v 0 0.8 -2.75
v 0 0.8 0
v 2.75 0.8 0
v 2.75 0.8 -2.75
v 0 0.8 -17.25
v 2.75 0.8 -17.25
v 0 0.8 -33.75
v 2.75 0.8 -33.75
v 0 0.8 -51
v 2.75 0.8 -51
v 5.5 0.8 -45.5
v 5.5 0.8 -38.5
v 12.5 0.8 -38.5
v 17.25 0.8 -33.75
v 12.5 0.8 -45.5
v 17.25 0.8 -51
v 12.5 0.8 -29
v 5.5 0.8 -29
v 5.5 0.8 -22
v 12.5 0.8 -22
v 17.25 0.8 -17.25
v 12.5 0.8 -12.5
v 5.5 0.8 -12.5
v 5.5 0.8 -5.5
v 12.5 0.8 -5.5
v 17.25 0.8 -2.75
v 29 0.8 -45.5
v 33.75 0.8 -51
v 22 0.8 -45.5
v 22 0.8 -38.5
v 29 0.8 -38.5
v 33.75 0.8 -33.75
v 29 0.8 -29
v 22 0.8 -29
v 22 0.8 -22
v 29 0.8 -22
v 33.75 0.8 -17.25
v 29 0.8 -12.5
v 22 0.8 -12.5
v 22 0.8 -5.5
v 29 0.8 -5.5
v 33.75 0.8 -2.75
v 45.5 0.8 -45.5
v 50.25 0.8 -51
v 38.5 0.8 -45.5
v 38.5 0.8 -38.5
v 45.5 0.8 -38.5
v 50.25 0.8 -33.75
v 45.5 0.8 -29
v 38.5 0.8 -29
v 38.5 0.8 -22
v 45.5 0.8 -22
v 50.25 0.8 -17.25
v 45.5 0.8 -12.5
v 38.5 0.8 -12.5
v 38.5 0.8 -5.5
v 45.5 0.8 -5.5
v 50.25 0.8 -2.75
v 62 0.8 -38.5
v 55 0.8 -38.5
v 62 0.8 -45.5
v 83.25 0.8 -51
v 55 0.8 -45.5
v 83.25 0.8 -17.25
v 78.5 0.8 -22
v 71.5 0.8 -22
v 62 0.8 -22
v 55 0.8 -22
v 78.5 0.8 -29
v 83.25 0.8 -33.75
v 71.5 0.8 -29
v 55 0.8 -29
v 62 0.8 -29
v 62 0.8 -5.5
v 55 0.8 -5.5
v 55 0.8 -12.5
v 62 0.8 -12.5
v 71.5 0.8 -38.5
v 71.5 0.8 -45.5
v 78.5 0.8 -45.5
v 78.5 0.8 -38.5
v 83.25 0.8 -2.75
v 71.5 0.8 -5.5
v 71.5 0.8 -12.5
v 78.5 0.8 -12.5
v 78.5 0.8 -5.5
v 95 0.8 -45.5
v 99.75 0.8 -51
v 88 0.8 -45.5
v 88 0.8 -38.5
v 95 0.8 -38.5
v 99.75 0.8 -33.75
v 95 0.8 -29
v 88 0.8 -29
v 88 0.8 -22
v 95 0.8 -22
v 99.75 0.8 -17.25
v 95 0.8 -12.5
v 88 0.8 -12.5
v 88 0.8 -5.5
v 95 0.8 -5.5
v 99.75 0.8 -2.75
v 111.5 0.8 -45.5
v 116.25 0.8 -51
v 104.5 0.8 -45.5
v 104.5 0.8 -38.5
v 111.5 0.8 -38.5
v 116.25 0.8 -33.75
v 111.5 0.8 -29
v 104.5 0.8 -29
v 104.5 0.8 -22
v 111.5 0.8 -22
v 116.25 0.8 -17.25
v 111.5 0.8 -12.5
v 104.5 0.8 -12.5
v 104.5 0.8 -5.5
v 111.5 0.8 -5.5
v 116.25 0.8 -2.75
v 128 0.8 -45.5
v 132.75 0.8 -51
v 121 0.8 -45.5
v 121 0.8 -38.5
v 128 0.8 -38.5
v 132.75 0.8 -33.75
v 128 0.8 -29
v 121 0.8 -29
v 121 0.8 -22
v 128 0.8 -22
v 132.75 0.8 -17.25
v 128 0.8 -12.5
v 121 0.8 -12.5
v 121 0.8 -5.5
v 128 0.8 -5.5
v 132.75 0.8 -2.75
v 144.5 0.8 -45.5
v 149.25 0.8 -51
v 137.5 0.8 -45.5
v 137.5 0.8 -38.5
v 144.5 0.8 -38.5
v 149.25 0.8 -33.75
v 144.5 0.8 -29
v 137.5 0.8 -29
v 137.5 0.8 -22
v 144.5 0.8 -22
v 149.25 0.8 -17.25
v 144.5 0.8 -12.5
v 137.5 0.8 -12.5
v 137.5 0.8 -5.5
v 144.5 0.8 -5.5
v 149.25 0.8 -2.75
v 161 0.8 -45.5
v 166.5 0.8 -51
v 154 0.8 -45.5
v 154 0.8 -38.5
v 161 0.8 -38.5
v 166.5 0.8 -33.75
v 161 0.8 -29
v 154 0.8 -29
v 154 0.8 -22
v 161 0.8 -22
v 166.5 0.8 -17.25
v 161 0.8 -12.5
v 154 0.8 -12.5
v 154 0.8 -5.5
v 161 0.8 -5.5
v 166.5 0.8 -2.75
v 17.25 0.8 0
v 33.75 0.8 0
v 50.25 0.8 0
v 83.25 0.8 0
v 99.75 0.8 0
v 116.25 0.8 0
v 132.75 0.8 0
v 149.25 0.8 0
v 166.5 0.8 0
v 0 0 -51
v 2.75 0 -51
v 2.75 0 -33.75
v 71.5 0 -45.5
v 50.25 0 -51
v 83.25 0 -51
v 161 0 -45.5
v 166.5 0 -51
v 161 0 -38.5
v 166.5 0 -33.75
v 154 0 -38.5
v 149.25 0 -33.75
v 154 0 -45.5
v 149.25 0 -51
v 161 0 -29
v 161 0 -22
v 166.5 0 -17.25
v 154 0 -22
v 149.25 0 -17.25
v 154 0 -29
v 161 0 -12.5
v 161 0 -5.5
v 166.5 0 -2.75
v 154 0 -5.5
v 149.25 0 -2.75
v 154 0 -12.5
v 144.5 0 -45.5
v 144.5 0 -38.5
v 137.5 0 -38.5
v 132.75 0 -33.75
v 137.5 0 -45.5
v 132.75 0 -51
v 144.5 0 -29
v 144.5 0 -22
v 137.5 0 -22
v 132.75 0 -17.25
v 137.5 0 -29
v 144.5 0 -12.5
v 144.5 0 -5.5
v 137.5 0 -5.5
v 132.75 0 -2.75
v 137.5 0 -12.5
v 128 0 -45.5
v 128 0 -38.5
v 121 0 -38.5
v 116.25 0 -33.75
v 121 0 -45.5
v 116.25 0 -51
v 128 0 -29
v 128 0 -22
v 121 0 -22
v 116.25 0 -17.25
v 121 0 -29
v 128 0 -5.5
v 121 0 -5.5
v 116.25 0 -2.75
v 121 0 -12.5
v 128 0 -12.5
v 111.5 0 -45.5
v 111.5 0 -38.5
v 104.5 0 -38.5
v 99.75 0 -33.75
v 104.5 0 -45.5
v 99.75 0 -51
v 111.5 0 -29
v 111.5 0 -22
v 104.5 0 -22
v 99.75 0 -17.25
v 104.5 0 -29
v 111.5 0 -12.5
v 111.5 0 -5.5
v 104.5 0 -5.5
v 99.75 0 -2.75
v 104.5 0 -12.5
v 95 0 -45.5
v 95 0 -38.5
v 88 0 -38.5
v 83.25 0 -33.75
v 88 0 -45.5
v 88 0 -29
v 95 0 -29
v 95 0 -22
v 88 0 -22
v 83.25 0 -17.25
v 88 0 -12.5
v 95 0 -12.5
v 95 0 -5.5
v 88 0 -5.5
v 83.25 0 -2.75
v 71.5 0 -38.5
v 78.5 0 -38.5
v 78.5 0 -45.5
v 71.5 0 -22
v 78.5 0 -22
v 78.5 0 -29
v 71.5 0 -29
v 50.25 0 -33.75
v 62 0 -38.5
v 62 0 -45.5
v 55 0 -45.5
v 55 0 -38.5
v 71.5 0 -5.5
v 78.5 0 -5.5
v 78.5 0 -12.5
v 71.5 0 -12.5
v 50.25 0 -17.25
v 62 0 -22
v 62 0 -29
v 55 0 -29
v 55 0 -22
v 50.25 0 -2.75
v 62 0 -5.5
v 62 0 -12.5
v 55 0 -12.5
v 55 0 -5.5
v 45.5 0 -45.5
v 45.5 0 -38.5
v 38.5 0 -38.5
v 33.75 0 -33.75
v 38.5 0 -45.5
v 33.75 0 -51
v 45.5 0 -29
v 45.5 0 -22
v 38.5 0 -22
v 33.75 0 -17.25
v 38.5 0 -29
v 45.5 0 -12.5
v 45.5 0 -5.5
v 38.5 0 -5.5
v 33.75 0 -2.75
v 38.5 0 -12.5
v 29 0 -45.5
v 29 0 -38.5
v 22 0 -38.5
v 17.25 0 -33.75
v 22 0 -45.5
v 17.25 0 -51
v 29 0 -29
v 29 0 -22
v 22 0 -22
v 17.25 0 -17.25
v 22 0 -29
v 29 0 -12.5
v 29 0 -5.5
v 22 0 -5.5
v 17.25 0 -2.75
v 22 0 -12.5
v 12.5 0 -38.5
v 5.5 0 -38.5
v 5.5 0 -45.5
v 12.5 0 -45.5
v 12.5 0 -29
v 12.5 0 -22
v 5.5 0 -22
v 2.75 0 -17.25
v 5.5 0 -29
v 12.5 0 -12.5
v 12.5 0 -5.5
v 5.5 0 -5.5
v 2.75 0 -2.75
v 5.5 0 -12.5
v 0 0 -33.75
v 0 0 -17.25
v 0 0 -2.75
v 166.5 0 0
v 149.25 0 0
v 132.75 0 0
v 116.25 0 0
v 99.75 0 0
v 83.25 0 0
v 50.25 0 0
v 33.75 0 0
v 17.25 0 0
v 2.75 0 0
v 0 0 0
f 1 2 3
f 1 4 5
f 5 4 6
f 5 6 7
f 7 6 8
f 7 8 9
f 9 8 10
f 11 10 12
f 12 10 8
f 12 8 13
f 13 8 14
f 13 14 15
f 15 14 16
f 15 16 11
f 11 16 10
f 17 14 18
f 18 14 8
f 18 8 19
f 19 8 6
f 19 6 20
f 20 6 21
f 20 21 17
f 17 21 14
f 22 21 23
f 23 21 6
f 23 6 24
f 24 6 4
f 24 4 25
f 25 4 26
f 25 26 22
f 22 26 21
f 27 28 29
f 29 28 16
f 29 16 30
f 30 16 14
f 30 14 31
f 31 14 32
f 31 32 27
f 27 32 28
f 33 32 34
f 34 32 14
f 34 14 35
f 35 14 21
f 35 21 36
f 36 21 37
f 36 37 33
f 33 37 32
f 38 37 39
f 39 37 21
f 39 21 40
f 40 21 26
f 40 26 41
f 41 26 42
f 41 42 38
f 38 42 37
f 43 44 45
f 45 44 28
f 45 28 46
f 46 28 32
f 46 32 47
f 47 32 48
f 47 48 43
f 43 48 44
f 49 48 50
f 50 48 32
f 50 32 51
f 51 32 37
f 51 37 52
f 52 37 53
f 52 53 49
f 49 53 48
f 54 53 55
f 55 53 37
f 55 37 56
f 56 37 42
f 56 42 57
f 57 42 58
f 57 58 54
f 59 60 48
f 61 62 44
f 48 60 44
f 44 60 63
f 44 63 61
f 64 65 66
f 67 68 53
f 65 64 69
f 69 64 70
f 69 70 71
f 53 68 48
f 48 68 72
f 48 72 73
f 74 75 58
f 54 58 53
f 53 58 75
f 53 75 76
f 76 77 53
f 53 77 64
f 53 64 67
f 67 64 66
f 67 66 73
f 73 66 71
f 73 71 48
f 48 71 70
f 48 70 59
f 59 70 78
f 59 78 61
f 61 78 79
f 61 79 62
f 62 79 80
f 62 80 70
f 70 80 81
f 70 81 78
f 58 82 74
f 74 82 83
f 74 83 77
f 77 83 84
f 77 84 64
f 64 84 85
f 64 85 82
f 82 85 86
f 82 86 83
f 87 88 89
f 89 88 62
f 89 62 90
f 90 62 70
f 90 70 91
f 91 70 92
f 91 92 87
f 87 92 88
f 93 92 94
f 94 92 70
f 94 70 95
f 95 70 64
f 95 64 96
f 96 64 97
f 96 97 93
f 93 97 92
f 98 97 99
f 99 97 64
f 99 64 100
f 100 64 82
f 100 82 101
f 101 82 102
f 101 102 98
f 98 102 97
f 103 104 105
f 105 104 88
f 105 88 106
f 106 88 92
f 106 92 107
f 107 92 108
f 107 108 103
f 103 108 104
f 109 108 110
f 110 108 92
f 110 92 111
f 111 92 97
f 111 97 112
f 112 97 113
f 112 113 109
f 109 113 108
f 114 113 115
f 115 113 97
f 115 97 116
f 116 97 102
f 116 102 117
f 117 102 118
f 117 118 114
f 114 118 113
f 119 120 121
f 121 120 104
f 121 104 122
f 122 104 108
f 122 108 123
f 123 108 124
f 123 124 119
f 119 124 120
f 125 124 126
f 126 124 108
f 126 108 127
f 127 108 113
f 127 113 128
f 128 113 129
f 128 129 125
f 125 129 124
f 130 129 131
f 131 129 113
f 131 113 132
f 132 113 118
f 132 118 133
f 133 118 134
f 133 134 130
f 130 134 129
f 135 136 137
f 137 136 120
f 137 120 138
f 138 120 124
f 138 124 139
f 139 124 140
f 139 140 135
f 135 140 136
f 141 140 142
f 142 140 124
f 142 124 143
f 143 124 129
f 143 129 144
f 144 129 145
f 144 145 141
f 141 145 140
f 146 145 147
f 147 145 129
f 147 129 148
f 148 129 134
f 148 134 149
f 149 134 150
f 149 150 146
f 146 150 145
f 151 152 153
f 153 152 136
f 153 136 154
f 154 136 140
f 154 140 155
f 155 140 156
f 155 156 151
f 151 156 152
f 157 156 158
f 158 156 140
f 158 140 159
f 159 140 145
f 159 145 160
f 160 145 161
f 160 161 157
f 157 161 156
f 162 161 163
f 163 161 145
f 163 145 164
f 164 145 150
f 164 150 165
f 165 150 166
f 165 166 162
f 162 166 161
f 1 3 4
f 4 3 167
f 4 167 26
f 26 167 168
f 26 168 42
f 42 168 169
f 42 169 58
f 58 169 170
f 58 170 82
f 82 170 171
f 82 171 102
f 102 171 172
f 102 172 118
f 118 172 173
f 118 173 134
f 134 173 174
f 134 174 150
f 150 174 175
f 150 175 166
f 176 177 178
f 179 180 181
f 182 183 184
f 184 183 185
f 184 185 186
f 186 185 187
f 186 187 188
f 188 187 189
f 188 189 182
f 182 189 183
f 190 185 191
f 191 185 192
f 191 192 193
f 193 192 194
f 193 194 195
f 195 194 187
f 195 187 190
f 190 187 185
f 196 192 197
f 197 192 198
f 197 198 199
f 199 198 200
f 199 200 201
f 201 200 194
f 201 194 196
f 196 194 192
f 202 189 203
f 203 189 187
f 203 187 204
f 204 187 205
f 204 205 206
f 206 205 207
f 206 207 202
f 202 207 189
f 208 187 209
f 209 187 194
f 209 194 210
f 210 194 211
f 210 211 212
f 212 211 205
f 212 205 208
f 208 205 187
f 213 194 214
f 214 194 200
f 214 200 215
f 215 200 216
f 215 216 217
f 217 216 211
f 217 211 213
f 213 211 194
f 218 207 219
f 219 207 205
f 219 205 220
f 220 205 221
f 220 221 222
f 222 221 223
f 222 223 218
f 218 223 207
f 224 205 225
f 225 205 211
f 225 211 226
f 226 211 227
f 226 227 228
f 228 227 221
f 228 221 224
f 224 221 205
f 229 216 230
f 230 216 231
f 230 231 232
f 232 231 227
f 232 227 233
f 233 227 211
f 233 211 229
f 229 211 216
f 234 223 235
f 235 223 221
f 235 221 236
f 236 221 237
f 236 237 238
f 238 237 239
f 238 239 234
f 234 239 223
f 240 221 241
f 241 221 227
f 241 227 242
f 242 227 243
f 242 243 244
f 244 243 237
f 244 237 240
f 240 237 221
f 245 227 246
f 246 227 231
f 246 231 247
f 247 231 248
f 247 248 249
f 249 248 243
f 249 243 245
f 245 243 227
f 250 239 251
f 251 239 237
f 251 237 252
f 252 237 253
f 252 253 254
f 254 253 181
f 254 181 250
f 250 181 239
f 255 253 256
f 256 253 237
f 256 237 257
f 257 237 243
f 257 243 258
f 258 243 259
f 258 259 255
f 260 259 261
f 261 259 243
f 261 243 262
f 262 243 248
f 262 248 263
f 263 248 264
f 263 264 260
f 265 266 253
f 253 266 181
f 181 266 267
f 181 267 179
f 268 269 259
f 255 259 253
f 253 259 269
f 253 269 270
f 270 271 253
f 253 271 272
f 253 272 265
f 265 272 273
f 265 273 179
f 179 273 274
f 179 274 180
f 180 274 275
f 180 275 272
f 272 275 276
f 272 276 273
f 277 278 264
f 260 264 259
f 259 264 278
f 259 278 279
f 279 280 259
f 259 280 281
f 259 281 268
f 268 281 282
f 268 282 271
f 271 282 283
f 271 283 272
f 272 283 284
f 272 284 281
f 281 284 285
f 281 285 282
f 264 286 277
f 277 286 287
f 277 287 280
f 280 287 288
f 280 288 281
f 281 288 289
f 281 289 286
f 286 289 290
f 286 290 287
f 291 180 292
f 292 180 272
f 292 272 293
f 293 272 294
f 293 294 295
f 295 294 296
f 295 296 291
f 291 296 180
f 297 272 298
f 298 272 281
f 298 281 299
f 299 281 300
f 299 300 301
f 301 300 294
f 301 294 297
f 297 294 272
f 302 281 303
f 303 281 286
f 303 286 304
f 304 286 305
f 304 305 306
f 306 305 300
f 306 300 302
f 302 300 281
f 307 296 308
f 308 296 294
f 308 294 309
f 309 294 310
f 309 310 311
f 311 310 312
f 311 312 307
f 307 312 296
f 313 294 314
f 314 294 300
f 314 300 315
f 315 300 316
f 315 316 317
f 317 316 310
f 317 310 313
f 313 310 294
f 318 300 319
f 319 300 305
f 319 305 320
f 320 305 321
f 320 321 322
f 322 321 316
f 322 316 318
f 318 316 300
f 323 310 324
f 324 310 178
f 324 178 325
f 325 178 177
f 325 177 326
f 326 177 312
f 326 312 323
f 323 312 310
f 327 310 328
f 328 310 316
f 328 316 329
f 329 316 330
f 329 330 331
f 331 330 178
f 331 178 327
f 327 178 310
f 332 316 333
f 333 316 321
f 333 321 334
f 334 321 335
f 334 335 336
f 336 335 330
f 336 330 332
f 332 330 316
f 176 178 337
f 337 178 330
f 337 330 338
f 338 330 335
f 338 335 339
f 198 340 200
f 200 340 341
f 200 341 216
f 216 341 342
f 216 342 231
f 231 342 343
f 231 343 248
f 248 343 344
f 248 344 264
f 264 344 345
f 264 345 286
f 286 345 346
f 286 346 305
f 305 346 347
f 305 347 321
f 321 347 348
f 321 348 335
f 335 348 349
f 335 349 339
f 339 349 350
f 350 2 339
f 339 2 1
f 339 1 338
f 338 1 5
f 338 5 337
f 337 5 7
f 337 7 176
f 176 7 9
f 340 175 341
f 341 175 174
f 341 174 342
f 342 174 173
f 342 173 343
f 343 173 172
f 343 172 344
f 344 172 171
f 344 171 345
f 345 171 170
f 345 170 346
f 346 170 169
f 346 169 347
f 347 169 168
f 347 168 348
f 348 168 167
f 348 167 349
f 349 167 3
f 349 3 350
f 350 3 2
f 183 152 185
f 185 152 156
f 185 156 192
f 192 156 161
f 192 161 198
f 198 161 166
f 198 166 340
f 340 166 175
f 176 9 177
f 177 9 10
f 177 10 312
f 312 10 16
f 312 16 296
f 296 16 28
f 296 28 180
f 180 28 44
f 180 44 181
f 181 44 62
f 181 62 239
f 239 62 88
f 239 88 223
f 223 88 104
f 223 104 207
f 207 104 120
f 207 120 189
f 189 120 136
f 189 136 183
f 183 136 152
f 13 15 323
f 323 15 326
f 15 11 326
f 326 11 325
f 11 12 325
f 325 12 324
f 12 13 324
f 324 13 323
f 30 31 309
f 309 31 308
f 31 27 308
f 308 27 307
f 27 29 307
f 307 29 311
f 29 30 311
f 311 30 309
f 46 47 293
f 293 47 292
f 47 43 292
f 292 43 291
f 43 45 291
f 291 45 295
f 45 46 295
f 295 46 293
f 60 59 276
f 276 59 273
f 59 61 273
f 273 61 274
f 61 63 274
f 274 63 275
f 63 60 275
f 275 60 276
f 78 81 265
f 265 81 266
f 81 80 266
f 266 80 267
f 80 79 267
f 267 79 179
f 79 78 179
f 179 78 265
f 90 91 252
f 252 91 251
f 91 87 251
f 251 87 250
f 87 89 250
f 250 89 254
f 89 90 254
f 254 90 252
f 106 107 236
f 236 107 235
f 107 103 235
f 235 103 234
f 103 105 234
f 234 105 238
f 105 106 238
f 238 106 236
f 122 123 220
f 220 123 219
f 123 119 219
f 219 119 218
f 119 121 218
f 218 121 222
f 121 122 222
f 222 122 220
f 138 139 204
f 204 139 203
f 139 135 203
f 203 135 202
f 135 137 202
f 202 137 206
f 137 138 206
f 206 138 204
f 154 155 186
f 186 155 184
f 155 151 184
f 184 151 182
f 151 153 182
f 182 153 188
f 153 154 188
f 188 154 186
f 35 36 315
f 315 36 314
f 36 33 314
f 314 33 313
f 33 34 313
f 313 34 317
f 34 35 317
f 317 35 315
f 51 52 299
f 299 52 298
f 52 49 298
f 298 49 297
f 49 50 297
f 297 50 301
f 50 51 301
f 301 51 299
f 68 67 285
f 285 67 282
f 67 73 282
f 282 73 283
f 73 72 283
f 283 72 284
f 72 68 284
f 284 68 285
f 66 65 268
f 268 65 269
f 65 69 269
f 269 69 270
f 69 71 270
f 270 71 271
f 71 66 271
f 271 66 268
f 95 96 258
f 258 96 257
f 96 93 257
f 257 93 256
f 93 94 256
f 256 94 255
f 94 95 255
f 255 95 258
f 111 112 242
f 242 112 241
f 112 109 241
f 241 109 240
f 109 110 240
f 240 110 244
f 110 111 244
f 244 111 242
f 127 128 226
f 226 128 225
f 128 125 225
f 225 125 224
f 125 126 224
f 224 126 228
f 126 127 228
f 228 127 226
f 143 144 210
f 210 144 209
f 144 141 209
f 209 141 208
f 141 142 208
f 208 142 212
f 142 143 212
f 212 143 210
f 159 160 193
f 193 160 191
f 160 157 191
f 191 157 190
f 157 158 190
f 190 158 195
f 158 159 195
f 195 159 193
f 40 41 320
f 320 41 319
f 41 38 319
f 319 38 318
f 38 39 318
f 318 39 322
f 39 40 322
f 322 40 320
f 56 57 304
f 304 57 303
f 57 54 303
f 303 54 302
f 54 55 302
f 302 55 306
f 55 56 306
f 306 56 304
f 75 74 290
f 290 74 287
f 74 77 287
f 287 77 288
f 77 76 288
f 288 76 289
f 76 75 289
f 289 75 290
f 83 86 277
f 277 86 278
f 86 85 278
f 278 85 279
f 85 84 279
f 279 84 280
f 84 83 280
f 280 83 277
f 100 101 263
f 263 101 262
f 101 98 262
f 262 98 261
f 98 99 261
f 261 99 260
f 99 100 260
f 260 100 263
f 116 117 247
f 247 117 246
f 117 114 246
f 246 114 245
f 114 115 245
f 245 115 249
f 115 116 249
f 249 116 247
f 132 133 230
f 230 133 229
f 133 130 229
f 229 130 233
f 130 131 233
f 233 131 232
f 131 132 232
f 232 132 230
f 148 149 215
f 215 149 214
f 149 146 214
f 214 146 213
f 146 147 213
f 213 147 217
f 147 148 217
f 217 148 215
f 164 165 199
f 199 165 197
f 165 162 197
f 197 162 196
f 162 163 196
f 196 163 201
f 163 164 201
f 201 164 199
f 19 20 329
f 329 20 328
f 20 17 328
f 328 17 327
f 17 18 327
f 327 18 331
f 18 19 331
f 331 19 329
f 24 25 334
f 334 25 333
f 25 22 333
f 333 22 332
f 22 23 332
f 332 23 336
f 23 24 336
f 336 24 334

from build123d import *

# Parameters (mm, degrees)
IZIM1_W                     = 166.5
IZIM1_H                     = 51
IZIM1_W_2                   = 7
IZIM1_H_2                   = 7
Y_KSEKLIK_EKSTR_ZYON1_DEPTH = 0.8


with BuildPart() as part:
    # Çizim1 → Yükseklik-Ekstrüzyon1 (new body)
    with BuildSketch(Plane(origin=(0, 0, 0), x_dir=(1, 0, 0), z_dir=(0, 1, 0))):
        with Locations((83.25, 25.5)):
            Rectangle(IZIM1_W, IZIM1_H)
        with Locations((25.5, 42)):
            Rectangle(IZIM1_W_2, IZIM1_H_2, mode=Mode.SUBTRACT)
        with Locations((9, 42)):
            Rectangle(IZIM1_W_2, IZIM1_H_2, mode=Mode.SUBTRACT)
        with Locations((42, 42)):
            Rectangle(IZIM1_W_2, IZIM1_H_2, mode=Mode.SUBTRACT)
        with Locations((58.5, 42)):
            Rectangle(IZIM1_W_2, IZIM1_H_2, mode=Mode.SUBTRACT)
        with Locations((75, 42)):
            Rectangle(IZIM1_W_2, IZIM1_H_2, mode=Mode.SUBTRACT)
        with Locations((91.5, 42)):
            Rectangle(IZIM1_W_2, IZIM1_H_2, mode=Mode.SUBTRACT)
        with Locations((108, 42)):
            Rectangle(IZIM1_W_2, IZIM1_H_2, mode=Mode.SUBTRACT)
        with Locations((124.5, 42)):
            Rectangle(IZIM1_W_2, IZIM1_H_2, mode=Mode.SUBTRACT)
        with Locations((141, 42)):
            Rectangle(IZIM1_W_2, IZIM1_H_2, mode=Mode.SUBTRACT)
        with Locations((157.5, 42)):
            Rectangle(IZIM1_W_2, IZIM1_H_2, mode=Mode.SUBTRACT)
        with Locations((25.5, 25.5)):
            Rectangle(IZIM1_W_2, IZIM1_H_2, mode=Mode.SUBTRACT)
        with Locations((42, 25.5)):
            Rectangle(IZIM1_W_2, IZIM1_H_2, mode=Mode.SUBTRACT)
        with Locations((58.5, 25.5)):
            Rectangle(IZIM1_W_2, IZIM1_H_2, mode=Mode.SUBTRACT)
        with Locations((75, 25.5)):
            Rectangle(IZIM1_W_2, IZIM1_H_2, mode=Mode.SUBTRACT)
        with Locations((91.5, 25.5)):
            Rectangle(IZIM1_W_2, IZIM1_H_2, mode=Mode.SUBTRACT)
        with Locations((108, 25.5)):
            Rectangle(IZIM1_W_2, IZIM1_H_2, mode=Mode.SUBTRACT)
        with Locations((124.5, 25.5)):
            Rectangle(IZIM1_W_2, IZIM1_H_2, mode=Mode.SUBTRACT)
        with Locations((141, 25.5)):
            Rectangle(IZIM1_W_2, IZIM1_H_2, mode=Mode.SUBTRACT)
        with Locations((157.5, 25.5)):
            Rectangle(IZIM1_W_2, IZIM1_H_2, mode=Mode.SUBTRACT)
        with Locations((25.5, 9)):
            Rectangle(IZIM1_W_2, IZIM1_H_2, mode=Mode.SUBTRACT)
        with Locations((42, 9)):
            Rectangle(IZIM1_W_2, IZIM1_H_2, mode=Mode.SUBTRACT)
        with Locations((58.5, 9)):
            Rectangle(IZIM1_W_2, IZIM1_H_2, mode=Mode.SUBTRACT)
        with Locations((75, 9)):
            Rectangle(IZIM1_W_2, IZIM1_H_2, mode=Mode.SUBTRACT)
        with Locations((91.5, 9)):
            Rectangle(IZIM1_W_2, IZIM1_H_2, mode=Mode.SUBTRACT)
        with Locations((108, 9)):
            Rectangle(IZIM1_W_2, IZIM1_H_2, mode=Mode.SUBTRACT)
        with Locations((124.5, 9)):
            Rectangle(IZIM1_W_2, IZIM1_H_2, mode=Mode.SUBTRACT)
        with Locations((141, 9)):
            Rectangle(IZIM1_W_2, IZIM1_H_2, mode=Mode.SUBTRACT)
        with Locations((157.5, 9)):
            Rectangle(IZIM1_W_2, IZIM1_H_2, mode=Mode.SUBTRACT)
        with Locations((9, 25.5)):
            Rectangle(IZIM1_W_2, IZIM1_H_2, mode=Mode.SUBTRACT)
        with Locations((9, 9)):
            Rectangle(IZIM1_W_2, IZIM1_H_2, mode=Mode.SUBTRACT)
    extrude(amount=Y_KSEKLIK_EKSTR_ZYON1_DEPTH)


solid = part.part
